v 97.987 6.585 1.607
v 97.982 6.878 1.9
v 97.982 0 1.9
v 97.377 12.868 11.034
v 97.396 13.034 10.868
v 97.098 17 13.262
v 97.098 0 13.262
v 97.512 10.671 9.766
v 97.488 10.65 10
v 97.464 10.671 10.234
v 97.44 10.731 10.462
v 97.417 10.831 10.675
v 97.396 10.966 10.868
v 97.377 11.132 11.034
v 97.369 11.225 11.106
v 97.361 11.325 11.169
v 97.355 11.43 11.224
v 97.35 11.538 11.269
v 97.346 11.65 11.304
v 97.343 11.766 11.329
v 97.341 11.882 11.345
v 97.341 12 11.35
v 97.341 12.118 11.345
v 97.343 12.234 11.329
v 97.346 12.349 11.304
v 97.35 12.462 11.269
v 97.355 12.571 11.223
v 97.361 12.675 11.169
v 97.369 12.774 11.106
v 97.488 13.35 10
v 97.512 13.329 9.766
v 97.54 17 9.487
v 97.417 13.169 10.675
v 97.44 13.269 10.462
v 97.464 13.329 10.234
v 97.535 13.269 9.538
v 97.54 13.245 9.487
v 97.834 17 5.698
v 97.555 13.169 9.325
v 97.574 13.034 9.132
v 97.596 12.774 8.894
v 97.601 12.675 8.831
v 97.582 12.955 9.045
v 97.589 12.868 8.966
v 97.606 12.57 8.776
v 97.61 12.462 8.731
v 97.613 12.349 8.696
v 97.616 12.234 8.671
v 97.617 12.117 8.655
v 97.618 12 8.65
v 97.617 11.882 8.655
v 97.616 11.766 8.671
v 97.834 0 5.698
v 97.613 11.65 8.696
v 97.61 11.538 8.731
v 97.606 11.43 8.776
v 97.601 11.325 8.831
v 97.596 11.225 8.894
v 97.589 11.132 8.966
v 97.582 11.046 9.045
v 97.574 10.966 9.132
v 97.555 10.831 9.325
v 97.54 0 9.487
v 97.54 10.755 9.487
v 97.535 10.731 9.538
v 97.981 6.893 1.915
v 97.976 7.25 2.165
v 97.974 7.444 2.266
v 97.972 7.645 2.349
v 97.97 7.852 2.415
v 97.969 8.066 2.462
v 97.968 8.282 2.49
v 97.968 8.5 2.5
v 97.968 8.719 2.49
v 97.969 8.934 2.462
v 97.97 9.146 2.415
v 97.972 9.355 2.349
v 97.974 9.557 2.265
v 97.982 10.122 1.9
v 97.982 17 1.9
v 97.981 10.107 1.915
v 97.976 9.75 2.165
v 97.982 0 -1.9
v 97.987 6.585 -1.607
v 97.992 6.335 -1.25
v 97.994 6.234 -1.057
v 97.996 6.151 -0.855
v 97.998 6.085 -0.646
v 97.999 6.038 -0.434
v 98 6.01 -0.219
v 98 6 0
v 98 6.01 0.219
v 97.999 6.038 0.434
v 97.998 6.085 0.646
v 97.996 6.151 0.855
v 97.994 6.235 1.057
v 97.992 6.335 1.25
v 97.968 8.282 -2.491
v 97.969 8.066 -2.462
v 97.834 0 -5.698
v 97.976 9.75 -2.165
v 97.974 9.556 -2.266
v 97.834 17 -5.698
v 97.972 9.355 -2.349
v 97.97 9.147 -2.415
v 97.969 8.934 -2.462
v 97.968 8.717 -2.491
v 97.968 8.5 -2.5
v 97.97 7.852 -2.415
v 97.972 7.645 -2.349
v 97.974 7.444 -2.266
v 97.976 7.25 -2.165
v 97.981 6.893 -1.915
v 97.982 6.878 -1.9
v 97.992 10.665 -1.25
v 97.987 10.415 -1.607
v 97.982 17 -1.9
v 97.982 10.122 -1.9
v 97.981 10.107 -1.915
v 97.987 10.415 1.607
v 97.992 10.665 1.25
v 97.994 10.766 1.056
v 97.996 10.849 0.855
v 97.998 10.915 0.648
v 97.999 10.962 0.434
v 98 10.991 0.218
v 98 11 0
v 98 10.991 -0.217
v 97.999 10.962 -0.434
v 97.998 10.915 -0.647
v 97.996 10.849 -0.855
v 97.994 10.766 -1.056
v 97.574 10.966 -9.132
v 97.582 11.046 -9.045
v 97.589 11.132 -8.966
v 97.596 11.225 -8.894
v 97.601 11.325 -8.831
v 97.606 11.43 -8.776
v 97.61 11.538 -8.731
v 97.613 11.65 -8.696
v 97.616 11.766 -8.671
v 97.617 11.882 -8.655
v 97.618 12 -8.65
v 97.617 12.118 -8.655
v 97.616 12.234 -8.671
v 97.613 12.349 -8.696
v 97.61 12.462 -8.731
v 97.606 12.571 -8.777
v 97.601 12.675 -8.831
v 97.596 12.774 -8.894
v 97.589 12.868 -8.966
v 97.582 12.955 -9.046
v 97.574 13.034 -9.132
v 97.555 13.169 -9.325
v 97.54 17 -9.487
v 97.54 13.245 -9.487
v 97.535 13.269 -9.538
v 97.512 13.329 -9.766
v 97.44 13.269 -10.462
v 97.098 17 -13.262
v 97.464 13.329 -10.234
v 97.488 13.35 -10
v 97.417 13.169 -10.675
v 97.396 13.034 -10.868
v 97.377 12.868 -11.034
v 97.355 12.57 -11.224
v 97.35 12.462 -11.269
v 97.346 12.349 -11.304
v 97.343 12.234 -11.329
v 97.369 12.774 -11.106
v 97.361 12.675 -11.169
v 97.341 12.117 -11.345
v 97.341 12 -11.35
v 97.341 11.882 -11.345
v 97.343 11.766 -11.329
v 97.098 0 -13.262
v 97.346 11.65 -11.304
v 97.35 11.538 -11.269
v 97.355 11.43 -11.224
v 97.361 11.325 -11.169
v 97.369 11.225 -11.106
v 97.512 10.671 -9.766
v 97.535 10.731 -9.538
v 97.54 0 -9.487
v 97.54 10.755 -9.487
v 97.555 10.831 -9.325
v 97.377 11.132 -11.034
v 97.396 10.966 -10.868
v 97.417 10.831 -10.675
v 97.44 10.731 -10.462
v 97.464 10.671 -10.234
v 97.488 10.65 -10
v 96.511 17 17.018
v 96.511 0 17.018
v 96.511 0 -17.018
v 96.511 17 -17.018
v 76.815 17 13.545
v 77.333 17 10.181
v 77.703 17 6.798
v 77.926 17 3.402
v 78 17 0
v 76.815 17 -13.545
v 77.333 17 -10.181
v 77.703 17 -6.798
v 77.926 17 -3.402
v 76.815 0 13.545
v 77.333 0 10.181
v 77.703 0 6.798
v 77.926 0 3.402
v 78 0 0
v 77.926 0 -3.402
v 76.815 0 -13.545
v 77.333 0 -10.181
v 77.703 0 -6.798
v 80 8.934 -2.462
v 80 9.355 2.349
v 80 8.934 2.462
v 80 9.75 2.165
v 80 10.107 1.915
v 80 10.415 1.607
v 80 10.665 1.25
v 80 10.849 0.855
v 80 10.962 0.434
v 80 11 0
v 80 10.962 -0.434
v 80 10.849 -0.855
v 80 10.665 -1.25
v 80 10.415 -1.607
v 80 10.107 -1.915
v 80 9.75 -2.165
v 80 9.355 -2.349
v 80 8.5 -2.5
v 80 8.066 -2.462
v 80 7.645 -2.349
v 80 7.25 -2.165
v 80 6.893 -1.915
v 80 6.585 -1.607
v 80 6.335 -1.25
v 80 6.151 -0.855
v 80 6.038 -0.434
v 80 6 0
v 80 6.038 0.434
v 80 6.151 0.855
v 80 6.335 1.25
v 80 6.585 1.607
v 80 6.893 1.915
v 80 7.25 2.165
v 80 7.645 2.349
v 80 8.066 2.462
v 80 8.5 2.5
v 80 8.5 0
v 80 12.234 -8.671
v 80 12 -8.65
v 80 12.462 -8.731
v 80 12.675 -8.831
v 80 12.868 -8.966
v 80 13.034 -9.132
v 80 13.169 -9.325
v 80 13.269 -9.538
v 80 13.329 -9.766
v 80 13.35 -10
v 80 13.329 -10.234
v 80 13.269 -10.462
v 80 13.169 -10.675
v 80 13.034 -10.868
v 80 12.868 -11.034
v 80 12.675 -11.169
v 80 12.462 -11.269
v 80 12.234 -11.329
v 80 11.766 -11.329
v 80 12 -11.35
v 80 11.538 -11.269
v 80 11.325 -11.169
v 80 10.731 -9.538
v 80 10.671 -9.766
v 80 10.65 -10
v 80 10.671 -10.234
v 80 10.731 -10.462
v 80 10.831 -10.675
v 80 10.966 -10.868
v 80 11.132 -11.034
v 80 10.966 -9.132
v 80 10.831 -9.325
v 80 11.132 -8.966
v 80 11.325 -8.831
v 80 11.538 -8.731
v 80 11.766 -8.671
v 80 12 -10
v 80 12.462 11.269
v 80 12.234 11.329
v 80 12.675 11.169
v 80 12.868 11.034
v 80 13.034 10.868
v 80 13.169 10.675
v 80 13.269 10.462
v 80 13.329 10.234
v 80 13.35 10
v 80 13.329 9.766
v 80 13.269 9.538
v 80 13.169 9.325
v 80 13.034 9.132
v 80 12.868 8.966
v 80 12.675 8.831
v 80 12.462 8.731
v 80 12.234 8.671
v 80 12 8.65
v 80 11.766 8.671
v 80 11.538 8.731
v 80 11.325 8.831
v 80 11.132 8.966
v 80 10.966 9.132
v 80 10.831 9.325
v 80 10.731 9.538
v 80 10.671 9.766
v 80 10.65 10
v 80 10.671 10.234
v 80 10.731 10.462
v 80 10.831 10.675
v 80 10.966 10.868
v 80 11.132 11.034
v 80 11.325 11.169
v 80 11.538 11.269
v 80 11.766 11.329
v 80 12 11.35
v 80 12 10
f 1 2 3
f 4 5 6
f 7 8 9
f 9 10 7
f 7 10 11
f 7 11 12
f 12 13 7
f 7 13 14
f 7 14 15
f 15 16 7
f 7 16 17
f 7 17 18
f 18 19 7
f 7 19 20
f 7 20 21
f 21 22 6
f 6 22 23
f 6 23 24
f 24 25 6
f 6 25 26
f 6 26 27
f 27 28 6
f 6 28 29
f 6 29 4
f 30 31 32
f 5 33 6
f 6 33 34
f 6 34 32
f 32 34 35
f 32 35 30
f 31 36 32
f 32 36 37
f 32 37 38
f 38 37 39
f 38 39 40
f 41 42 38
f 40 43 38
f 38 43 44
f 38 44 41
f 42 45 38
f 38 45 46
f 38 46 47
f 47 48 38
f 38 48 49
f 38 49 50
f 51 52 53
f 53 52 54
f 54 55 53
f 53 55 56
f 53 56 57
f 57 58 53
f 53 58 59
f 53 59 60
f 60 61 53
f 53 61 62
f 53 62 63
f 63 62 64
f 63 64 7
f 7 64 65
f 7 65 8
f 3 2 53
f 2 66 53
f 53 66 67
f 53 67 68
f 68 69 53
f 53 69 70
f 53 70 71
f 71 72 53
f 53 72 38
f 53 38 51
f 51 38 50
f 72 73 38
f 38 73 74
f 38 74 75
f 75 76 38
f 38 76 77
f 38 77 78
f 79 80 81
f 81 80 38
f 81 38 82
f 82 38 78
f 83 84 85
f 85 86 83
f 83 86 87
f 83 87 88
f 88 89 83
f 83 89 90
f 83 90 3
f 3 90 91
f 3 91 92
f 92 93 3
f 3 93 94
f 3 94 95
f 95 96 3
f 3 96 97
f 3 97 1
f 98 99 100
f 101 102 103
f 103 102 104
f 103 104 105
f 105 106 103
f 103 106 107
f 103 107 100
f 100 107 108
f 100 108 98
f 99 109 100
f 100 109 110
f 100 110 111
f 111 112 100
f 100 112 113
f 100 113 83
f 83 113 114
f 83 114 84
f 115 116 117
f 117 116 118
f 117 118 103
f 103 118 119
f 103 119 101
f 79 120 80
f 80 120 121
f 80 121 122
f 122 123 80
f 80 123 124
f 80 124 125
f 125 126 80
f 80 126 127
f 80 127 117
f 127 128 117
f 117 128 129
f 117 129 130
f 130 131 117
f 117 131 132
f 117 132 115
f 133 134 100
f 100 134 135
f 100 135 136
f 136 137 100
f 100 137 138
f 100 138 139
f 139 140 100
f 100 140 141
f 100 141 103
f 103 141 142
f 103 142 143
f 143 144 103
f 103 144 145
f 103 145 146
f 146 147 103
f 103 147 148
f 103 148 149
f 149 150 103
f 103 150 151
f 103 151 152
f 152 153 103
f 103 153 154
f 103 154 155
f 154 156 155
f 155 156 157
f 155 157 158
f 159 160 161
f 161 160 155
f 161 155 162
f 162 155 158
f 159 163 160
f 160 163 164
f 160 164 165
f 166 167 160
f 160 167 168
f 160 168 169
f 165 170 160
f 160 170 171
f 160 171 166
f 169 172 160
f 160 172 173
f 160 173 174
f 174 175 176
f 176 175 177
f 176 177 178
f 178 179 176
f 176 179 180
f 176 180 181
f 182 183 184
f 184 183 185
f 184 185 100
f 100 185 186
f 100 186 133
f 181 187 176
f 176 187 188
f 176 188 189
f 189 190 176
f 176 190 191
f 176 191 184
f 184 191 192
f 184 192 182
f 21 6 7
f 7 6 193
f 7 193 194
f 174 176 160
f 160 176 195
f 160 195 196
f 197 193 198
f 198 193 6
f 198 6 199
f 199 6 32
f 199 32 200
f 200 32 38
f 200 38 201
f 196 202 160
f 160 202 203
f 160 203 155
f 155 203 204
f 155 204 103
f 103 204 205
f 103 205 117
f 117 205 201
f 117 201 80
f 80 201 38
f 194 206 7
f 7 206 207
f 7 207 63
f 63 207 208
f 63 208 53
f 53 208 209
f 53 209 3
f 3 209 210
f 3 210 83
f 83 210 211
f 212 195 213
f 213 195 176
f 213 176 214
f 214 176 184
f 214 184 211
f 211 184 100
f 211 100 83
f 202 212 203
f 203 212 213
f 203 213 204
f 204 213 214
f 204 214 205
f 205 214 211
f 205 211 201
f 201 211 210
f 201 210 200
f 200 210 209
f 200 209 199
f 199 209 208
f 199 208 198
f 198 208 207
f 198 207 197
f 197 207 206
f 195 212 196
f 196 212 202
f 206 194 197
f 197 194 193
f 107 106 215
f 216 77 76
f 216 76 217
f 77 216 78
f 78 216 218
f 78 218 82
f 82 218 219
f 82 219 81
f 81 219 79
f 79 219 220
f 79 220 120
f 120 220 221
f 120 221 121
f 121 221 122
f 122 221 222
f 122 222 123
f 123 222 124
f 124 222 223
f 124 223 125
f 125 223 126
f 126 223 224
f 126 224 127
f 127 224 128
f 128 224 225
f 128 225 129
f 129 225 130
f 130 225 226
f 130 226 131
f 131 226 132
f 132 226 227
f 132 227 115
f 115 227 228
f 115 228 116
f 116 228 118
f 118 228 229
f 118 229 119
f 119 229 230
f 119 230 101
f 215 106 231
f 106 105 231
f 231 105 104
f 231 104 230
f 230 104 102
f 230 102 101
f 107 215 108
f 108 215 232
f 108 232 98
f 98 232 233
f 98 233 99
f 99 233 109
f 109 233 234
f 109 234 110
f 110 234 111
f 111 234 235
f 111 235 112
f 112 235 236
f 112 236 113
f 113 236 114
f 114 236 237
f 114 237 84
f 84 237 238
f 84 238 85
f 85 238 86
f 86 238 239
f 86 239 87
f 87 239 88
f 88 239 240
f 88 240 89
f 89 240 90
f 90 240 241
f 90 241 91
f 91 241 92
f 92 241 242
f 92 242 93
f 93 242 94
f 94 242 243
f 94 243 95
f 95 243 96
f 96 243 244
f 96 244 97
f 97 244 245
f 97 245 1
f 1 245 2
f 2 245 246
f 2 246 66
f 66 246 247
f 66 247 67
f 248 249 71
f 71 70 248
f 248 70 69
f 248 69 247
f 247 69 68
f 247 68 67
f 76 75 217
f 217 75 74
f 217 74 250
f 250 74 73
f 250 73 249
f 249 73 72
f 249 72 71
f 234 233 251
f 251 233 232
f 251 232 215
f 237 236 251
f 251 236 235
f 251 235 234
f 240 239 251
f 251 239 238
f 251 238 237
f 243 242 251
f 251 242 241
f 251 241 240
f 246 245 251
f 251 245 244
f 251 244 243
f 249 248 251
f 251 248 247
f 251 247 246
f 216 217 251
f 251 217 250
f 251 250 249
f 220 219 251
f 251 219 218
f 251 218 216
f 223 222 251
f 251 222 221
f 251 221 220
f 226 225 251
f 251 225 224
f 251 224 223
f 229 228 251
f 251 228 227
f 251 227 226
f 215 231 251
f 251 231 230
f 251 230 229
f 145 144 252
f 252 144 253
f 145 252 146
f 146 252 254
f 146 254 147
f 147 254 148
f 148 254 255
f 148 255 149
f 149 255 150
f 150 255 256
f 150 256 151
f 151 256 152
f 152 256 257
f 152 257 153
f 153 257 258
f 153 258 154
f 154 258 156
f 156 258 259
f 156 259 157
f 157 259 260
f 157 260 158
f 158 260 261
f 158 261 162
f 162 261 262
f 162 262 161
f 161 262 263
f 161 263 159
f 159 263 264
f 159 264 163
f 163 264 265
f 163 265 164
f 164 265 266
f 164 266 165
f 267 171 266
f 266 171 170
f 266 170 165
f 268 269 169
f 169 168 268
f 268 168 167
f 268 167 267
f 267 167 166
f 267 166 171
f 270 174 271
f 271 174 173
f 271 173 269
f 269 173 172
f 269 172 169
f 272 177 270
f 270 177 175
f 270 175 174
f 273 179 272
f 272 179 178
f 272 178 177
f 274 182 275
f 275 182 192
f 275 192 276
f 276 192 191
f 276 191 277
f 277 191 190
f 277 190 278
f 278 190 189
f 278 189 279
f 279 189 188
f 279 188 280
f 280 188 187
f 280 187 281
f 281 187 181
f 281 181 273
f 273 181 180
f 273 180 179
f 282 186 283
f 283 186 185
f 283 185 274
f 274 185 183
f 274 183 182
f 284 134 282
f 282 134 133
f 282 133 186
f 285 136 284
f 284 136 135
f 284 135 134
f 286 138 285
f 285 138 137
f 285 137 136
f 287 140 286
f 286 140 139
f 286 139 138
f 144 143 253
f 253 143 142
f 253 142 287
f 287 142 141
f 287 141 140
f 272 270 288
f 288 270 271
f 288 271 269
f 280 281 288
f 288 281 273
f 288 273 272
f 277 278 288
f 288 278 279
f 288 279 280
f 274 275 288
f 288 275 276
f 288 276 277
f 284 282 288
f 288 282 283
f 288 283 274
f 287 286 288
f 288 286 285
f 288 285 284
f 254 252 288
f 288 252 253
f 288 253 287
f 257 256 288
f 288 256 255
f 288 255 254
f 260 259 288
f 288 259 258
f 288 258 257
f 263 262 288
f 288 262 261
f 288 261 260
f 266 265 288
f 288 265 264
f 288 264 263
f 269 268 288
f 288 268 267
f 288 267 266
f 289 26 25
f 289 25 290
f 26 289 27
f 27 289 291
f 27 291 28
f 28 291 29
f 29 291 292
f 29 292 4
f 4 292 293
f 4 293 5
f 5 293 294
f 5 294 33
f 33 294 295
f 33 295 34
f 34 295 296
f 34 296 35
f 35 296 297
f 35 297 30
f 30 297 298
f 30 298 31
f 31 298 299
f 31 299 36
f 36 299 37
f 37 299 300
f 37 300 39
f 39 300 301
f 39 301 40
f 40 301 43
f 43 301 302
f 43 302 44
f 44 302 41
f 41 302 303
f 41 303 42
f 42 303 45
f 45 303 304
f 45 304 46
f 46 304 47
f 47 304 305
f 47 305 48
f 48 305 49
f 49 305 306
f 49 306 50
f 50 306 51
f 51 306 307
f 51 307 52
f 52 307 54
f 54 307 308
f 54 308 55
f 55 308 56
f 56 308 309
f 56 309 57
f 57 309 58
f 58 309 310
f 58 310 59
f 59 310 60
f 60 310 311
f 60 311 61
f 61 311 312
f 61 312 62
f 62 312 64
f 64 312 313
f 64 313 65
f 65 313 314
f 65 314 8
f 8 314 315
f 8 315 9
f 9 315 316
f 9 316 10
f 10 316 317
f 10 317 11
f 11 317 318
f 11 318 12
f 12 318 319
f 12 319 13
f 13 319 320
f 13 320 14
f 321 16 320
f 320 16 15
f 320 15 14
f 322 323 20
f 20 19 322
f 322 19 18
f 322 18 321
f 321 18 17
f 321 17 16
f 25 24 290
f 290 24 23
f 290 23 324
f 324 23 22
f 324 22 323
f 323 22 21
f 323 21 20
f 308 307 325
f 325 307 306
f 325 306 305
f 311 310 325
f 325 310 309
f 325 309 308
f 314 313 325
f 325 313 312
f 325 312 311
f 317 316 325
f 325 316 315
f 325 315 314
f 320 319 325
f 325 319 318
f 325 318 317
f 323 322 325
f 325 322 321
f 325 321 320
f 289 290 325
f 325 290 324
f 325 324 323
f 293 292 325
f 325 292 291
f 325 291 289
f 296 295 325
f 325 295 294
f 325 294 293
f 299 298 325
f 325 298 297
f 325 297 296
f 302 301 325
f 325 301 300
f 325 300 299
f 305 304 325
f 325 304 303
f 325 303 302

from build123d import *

# Parameters (mm, degrees)
SKETCH1_W          = 20
SKETCH1_H          = 17
REVOLVE1_ANGLE     = 20
SKETCH2_R          = 2.5
SKETCH2_R_2        = 1.35
CUT_EXTRUDE1_DEPTH = 20


with BuildPart() as part:
    # Sketch1 → Revolve1 (revolve, symmetric)
    with BuildSketch(Plane.XY) as revolve1_sk:
        with Locations((88, 8.5)):
            Rectangle(SKETCH1_W, SKETCH1_H)
    revolve(axis=Axis((0, -55, 0), (0, 1, 0)), revolution_arc=REVOLVE1_ANGLE / 2)
    revolve(revolve1_sk.sketch, axis=Axis((0, -55, 0), (0, -1, 0)), revolution_arc=REVOLVE1_ANGLE / 2)

    # Sketch2 → Cut-Extrude1 (cut)
    with BuildSketch(Plane(origin=(80, 0, 0), x_dir=(0, 0, -1), z_dir=(1, 0, 0))):
        with Locations((0, 8.5)):
            Circle(SKETCH2_R)
        with Locations((-10, 12)):
            Circle(SKETCH2_R_2)
        with Locations((10, 12)):
            Circle(SKETCH2_R_2)
    extrude(amount=CUT_EXTRUDE1_DEPTH, mode=Mode.SUBTRACT)


solid = part.part
